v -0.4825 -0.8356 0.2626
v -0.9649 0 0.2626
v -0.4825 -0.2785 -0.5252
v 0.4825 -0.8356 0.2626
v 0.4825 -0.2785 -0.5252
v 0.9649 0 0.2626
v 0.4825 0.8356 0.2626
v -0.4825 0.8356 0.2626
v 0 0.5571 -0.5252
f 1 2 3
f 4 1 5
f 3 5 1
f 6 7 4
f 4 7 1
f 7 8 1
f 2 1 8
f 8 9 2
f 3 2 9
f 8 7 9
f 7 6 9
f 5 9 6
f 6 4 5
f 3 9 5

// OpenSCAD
polyhedron( points = [[-0.482450640672051, -0.835629021809332, 0.262612865688463], [-0.964901281342994, 9.24196861373751e-11, 0.262612865688463], [-0.482450640597017, 0.835629021777572, 0.262612865688463], [0.482450640694844, 0.835629021690924, 0.262612865688463], [0.964901281290756, -8.08630876453749e-11, 0.262612865688463], [0.482450640619814, -0.835629021809332, 0.262612865688463], [-0.48245064062873, -0.278543007135019, -0.525225731374212], [4.89149241949563e-11, 0.55708601440289, -0.525225731374212], [0.482450640586465, -0.278543007129261, -0.525225731382355]], faces = [[0, 1, 6], [0, 6, 8, 5], [0, 5, 4, 3, 2, 1], [1, 2, 7, 6], [2, 3, 7], [3, 4, 8, 7], [4, 5, 8], [6, 7, 8]]);
